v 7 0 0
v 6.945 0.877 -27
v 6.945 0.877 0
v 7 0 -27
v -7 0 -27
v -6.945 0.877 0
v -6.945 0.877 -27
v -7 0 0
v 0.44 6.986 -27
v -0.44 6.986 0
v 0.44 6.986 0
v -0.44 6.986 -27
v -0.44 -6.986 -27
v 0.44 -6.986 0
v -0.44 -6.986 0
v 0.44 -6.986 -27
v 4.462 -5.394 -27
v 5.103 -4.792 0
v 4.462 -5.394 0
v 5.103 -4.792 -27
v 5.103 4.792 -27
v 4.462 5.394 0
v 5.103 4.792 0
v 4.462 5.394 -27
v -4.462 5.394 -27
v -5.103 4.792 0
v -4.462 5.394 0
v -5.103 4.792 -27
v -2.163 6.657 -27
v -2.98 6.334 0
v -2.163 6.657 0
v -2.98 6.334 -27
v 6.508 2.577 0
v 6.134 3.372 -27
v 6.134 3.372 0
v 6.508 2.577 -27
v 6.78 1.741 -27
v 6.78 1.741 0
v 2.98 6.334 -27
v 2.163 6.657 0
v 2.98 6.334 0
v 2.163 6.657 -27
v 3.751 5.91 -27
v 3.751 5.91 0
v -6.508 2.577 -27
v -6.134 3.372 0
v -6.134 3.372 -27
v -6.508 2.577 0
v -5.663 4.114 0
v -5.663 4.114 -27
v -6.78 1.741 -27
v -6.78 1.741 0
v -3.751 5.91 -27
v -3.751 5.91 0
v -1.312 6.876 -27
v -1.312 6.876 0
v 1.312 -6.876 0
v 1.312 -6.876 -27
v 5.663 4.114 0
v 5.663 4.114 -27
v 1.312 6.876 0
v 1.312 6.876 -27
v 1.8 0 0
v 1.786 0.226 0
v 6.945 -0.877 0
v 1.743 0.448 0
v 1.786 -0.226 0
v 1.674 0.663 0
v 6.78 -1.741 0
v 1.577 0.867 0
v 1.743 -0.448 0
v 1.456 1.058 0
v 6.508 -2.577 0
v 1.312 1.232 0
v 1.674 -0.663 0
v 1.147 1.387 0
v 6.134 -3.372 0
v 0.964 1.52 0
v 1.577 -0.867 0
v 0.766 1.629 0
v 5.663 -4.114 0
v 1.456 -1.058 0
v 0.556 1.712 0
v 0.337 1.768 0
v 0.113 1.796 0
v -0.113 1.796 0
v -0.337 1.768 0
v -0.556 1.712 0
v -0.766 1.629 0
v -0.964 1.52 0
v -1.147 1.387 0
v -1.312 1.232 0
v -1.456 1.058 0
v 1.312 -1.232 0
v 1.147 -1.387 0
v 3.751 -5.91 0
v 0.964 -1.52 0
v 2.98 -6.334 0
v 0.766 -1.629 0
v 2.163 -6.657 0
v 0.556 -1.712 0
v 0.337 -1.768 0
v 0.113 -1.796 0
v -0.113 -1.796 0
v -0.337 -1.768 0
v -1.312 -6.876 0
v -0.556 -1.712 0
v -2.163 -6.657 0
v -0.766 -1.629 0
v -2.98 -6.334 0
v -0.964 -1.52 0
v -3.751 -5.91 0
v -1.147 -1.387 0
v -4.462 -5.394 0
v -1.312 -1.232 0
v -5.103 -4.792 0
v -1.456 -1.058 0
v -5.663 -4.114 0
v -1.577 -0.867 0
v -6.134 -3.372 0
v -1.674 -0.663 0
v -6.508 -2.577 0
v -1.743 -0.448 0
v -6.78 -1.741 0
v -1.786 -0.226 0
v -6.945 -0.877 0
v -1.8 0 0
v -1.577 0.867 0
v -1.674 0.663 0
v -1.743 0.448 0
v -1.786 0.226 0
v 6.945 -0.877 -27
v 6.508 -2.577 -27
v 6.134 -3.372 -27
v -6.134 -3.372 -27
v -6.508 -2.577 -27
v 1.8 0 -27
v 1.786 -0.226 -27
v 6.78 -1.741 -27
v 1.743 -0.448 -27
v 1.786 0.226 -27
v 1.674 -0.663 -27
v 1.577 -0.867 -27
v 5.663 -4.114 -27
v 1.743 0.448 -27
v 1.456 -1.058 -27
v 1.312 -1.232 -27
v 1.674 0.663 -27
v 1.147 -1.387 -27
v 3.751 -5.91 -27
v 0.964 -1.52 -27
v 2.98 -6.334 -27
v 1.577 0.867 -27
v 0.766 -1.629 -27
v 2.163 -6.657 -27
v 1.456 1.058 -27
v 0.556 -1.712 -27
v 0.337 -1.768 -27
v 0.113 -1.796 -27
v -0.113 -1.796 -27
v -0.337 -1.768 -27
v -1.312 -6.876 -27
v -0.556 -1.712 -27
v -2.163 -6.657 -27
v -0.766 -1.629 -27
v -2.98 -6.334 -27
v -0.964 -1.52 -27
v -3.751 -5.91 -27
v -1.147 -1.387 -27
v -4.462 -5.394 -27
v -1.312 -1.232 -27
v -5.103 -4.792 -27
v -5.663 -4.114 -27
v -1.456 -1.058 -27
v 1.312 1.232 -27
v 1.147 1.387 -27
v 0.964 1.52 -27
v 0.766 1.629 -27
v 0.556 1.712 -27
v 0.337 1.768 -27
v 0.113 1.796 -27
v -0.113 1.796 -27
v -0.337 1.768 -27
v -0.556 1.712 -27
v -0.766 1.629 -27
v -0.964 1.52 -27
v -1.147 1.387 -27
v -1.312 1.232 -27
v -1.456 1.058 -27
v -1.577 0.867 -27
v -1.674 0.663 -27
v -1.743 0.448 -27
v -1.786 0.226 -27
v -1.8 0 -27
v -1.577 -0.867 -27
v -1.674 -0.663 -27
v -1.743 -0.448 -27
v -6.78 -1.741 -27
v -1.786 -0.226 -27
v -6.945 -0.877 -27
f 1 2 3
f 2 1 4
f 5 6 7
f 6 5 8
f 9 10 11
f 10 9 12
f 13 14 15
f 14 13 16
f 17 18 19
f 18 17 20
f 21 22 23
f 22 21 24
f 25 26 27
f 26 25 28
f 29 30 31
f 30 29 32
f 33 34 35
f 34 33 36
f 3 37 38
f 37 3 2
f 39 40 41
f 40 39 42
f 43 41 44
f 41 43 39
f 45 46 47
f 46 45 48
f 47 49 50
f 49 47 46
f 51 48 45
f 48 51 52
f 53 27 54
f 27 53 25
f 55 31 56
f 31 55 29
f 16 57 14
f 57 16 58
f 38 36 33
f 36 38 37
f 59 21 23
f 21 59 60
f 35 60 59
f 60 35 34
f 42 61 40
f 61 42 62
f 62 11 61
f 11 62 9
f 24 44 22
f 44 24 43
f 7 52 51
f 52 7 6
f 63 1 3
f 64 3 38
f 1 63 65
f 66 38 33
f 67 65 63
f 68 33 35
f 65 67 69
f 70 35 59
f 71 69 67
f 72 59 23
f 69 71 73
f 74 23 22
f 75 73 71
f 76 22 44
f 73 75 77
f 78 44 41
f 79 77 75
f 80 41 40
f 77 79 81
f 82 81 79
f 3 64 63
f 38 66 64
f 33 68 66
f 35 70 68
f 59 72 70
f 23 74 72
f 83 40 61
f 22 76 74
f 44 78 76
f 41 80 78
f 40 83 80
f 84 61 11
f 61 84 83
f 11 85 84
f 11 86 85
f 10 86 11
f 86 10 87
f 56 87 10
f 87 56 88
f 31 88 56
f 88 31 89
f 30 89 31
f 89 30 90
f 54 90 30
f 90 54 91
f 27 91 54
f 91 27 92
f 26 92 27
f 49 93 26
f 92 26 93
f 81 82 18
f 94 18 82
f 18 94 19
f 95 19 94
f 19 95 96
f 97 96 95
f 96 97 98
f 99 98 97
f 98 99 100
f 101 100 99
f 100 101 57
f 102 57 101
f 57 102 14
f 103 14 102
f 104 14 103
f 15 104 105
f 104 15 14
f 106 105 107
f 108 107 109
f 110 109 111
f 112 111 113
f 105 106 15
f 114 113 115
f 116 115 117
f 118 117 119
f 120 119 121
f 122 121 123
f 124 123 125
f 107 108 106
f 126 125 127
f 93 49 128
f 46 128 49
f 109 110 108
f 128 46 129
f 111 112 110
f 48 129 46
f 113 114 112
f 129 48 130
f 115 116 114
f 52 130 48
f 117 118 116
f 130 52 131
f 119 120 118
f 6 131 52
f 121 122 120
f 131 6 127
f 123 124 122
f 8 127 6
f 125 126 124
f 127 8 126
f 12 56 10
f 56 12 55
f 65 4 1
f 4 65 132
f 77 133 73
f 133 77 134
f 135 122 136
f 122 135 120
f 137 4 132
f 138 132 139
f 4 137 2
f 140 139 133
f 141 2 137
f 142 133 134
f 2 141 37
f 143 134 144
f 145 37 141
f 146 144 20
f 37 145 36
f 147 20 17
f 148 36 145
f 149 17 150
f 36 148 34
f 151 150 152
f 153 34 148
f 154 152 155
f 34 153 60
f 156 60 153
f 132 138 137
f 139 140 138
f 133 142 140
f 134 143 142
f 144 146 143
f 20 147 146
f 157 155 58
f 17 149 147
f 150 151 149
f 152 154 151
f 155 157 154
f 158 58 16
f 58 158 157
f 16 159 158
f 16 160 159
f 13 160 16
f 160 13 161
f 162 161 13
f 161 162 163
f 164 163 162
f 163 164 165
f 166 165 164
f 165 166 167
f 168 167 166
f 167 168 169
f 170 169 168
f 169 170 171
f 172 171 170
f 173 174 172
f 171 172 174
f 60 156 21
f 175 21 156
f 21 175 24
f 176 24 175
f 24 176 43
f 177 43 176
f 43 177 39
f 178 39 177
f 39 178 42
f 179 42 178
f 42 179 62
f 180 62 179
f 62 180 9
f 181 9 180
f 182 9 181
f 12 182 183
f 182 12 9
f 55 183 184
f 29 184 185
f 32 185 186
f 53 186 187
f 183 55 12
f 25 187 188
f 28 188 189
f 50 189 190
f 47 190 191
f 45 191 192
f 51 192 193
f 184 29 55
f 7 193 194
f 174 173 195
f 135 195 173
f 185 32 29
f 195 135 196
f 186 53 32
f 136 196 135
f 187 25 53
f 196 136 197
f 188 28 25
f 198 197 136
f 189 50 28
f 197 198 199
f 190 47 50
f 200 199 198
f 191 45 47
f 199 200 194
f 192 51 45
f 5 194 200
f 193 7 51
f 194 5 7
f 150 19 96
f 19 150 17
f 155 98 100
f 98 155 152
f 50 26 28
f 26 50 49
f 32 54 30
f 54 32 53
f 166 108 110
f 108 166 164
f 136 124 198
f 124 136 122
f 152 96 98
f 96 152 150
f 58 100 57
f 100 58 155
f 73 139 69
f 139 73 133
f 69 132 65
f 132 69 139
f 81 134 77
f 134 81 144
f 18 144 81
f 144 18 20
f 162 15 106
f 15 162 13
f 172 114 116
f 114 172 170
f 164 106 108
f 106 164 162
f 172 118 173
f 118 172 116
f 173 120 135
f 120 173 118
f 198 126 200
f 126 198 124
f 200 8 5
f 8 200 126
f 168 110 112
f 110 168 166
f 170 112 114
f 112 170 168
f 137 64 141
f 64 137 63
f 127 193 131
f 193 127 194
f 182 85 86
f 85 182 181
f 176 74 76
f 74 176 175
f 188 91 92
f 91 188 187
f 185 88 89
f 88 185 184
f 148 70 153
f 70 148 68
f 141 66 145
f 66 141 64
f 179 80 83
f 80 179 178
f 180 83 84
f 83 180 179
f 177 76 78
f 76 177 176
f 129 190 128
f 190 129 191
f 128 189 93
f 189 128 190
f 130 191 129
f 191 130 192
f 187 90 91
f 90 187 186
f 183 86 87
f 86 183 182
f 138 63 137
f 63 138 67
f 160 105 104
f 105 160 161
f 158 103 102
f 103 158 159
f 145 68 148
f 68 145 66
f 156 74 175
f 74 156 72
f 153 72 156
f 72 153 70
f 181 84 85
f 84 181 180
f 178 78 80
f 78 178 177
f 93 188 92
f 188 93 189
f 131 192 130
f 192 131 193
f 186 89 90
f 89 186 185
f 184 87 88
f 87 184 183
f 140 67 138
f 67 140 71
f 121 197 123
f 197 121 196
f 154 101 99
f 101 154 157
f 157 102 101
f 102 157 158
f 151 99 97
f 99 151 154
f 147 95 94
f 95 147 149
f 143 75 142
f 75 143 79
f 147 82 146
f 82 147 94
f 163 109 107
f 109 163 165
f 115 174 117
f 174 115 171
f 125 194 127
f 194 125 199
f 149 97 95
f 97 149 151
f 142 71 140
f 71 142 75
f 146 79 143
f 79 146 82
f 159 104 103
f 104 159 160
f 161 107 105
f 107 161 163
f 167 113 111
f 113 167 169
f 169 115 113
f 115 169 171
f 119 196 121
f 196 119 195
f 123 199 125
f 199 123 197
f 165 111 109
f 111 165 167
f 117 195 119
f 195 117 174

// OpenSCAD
$fn = 50;


difference() {
	union() {
		translate(v = [0, 0, -27.0000000000]) {
			cylinder(h = 27, r = 7.0000000000);
		}
	}
	union() {
		#translate(v = [0, 0, -27]) {
			cylinder(h = 27, r = 1.8000000000);
		}
	}
}
